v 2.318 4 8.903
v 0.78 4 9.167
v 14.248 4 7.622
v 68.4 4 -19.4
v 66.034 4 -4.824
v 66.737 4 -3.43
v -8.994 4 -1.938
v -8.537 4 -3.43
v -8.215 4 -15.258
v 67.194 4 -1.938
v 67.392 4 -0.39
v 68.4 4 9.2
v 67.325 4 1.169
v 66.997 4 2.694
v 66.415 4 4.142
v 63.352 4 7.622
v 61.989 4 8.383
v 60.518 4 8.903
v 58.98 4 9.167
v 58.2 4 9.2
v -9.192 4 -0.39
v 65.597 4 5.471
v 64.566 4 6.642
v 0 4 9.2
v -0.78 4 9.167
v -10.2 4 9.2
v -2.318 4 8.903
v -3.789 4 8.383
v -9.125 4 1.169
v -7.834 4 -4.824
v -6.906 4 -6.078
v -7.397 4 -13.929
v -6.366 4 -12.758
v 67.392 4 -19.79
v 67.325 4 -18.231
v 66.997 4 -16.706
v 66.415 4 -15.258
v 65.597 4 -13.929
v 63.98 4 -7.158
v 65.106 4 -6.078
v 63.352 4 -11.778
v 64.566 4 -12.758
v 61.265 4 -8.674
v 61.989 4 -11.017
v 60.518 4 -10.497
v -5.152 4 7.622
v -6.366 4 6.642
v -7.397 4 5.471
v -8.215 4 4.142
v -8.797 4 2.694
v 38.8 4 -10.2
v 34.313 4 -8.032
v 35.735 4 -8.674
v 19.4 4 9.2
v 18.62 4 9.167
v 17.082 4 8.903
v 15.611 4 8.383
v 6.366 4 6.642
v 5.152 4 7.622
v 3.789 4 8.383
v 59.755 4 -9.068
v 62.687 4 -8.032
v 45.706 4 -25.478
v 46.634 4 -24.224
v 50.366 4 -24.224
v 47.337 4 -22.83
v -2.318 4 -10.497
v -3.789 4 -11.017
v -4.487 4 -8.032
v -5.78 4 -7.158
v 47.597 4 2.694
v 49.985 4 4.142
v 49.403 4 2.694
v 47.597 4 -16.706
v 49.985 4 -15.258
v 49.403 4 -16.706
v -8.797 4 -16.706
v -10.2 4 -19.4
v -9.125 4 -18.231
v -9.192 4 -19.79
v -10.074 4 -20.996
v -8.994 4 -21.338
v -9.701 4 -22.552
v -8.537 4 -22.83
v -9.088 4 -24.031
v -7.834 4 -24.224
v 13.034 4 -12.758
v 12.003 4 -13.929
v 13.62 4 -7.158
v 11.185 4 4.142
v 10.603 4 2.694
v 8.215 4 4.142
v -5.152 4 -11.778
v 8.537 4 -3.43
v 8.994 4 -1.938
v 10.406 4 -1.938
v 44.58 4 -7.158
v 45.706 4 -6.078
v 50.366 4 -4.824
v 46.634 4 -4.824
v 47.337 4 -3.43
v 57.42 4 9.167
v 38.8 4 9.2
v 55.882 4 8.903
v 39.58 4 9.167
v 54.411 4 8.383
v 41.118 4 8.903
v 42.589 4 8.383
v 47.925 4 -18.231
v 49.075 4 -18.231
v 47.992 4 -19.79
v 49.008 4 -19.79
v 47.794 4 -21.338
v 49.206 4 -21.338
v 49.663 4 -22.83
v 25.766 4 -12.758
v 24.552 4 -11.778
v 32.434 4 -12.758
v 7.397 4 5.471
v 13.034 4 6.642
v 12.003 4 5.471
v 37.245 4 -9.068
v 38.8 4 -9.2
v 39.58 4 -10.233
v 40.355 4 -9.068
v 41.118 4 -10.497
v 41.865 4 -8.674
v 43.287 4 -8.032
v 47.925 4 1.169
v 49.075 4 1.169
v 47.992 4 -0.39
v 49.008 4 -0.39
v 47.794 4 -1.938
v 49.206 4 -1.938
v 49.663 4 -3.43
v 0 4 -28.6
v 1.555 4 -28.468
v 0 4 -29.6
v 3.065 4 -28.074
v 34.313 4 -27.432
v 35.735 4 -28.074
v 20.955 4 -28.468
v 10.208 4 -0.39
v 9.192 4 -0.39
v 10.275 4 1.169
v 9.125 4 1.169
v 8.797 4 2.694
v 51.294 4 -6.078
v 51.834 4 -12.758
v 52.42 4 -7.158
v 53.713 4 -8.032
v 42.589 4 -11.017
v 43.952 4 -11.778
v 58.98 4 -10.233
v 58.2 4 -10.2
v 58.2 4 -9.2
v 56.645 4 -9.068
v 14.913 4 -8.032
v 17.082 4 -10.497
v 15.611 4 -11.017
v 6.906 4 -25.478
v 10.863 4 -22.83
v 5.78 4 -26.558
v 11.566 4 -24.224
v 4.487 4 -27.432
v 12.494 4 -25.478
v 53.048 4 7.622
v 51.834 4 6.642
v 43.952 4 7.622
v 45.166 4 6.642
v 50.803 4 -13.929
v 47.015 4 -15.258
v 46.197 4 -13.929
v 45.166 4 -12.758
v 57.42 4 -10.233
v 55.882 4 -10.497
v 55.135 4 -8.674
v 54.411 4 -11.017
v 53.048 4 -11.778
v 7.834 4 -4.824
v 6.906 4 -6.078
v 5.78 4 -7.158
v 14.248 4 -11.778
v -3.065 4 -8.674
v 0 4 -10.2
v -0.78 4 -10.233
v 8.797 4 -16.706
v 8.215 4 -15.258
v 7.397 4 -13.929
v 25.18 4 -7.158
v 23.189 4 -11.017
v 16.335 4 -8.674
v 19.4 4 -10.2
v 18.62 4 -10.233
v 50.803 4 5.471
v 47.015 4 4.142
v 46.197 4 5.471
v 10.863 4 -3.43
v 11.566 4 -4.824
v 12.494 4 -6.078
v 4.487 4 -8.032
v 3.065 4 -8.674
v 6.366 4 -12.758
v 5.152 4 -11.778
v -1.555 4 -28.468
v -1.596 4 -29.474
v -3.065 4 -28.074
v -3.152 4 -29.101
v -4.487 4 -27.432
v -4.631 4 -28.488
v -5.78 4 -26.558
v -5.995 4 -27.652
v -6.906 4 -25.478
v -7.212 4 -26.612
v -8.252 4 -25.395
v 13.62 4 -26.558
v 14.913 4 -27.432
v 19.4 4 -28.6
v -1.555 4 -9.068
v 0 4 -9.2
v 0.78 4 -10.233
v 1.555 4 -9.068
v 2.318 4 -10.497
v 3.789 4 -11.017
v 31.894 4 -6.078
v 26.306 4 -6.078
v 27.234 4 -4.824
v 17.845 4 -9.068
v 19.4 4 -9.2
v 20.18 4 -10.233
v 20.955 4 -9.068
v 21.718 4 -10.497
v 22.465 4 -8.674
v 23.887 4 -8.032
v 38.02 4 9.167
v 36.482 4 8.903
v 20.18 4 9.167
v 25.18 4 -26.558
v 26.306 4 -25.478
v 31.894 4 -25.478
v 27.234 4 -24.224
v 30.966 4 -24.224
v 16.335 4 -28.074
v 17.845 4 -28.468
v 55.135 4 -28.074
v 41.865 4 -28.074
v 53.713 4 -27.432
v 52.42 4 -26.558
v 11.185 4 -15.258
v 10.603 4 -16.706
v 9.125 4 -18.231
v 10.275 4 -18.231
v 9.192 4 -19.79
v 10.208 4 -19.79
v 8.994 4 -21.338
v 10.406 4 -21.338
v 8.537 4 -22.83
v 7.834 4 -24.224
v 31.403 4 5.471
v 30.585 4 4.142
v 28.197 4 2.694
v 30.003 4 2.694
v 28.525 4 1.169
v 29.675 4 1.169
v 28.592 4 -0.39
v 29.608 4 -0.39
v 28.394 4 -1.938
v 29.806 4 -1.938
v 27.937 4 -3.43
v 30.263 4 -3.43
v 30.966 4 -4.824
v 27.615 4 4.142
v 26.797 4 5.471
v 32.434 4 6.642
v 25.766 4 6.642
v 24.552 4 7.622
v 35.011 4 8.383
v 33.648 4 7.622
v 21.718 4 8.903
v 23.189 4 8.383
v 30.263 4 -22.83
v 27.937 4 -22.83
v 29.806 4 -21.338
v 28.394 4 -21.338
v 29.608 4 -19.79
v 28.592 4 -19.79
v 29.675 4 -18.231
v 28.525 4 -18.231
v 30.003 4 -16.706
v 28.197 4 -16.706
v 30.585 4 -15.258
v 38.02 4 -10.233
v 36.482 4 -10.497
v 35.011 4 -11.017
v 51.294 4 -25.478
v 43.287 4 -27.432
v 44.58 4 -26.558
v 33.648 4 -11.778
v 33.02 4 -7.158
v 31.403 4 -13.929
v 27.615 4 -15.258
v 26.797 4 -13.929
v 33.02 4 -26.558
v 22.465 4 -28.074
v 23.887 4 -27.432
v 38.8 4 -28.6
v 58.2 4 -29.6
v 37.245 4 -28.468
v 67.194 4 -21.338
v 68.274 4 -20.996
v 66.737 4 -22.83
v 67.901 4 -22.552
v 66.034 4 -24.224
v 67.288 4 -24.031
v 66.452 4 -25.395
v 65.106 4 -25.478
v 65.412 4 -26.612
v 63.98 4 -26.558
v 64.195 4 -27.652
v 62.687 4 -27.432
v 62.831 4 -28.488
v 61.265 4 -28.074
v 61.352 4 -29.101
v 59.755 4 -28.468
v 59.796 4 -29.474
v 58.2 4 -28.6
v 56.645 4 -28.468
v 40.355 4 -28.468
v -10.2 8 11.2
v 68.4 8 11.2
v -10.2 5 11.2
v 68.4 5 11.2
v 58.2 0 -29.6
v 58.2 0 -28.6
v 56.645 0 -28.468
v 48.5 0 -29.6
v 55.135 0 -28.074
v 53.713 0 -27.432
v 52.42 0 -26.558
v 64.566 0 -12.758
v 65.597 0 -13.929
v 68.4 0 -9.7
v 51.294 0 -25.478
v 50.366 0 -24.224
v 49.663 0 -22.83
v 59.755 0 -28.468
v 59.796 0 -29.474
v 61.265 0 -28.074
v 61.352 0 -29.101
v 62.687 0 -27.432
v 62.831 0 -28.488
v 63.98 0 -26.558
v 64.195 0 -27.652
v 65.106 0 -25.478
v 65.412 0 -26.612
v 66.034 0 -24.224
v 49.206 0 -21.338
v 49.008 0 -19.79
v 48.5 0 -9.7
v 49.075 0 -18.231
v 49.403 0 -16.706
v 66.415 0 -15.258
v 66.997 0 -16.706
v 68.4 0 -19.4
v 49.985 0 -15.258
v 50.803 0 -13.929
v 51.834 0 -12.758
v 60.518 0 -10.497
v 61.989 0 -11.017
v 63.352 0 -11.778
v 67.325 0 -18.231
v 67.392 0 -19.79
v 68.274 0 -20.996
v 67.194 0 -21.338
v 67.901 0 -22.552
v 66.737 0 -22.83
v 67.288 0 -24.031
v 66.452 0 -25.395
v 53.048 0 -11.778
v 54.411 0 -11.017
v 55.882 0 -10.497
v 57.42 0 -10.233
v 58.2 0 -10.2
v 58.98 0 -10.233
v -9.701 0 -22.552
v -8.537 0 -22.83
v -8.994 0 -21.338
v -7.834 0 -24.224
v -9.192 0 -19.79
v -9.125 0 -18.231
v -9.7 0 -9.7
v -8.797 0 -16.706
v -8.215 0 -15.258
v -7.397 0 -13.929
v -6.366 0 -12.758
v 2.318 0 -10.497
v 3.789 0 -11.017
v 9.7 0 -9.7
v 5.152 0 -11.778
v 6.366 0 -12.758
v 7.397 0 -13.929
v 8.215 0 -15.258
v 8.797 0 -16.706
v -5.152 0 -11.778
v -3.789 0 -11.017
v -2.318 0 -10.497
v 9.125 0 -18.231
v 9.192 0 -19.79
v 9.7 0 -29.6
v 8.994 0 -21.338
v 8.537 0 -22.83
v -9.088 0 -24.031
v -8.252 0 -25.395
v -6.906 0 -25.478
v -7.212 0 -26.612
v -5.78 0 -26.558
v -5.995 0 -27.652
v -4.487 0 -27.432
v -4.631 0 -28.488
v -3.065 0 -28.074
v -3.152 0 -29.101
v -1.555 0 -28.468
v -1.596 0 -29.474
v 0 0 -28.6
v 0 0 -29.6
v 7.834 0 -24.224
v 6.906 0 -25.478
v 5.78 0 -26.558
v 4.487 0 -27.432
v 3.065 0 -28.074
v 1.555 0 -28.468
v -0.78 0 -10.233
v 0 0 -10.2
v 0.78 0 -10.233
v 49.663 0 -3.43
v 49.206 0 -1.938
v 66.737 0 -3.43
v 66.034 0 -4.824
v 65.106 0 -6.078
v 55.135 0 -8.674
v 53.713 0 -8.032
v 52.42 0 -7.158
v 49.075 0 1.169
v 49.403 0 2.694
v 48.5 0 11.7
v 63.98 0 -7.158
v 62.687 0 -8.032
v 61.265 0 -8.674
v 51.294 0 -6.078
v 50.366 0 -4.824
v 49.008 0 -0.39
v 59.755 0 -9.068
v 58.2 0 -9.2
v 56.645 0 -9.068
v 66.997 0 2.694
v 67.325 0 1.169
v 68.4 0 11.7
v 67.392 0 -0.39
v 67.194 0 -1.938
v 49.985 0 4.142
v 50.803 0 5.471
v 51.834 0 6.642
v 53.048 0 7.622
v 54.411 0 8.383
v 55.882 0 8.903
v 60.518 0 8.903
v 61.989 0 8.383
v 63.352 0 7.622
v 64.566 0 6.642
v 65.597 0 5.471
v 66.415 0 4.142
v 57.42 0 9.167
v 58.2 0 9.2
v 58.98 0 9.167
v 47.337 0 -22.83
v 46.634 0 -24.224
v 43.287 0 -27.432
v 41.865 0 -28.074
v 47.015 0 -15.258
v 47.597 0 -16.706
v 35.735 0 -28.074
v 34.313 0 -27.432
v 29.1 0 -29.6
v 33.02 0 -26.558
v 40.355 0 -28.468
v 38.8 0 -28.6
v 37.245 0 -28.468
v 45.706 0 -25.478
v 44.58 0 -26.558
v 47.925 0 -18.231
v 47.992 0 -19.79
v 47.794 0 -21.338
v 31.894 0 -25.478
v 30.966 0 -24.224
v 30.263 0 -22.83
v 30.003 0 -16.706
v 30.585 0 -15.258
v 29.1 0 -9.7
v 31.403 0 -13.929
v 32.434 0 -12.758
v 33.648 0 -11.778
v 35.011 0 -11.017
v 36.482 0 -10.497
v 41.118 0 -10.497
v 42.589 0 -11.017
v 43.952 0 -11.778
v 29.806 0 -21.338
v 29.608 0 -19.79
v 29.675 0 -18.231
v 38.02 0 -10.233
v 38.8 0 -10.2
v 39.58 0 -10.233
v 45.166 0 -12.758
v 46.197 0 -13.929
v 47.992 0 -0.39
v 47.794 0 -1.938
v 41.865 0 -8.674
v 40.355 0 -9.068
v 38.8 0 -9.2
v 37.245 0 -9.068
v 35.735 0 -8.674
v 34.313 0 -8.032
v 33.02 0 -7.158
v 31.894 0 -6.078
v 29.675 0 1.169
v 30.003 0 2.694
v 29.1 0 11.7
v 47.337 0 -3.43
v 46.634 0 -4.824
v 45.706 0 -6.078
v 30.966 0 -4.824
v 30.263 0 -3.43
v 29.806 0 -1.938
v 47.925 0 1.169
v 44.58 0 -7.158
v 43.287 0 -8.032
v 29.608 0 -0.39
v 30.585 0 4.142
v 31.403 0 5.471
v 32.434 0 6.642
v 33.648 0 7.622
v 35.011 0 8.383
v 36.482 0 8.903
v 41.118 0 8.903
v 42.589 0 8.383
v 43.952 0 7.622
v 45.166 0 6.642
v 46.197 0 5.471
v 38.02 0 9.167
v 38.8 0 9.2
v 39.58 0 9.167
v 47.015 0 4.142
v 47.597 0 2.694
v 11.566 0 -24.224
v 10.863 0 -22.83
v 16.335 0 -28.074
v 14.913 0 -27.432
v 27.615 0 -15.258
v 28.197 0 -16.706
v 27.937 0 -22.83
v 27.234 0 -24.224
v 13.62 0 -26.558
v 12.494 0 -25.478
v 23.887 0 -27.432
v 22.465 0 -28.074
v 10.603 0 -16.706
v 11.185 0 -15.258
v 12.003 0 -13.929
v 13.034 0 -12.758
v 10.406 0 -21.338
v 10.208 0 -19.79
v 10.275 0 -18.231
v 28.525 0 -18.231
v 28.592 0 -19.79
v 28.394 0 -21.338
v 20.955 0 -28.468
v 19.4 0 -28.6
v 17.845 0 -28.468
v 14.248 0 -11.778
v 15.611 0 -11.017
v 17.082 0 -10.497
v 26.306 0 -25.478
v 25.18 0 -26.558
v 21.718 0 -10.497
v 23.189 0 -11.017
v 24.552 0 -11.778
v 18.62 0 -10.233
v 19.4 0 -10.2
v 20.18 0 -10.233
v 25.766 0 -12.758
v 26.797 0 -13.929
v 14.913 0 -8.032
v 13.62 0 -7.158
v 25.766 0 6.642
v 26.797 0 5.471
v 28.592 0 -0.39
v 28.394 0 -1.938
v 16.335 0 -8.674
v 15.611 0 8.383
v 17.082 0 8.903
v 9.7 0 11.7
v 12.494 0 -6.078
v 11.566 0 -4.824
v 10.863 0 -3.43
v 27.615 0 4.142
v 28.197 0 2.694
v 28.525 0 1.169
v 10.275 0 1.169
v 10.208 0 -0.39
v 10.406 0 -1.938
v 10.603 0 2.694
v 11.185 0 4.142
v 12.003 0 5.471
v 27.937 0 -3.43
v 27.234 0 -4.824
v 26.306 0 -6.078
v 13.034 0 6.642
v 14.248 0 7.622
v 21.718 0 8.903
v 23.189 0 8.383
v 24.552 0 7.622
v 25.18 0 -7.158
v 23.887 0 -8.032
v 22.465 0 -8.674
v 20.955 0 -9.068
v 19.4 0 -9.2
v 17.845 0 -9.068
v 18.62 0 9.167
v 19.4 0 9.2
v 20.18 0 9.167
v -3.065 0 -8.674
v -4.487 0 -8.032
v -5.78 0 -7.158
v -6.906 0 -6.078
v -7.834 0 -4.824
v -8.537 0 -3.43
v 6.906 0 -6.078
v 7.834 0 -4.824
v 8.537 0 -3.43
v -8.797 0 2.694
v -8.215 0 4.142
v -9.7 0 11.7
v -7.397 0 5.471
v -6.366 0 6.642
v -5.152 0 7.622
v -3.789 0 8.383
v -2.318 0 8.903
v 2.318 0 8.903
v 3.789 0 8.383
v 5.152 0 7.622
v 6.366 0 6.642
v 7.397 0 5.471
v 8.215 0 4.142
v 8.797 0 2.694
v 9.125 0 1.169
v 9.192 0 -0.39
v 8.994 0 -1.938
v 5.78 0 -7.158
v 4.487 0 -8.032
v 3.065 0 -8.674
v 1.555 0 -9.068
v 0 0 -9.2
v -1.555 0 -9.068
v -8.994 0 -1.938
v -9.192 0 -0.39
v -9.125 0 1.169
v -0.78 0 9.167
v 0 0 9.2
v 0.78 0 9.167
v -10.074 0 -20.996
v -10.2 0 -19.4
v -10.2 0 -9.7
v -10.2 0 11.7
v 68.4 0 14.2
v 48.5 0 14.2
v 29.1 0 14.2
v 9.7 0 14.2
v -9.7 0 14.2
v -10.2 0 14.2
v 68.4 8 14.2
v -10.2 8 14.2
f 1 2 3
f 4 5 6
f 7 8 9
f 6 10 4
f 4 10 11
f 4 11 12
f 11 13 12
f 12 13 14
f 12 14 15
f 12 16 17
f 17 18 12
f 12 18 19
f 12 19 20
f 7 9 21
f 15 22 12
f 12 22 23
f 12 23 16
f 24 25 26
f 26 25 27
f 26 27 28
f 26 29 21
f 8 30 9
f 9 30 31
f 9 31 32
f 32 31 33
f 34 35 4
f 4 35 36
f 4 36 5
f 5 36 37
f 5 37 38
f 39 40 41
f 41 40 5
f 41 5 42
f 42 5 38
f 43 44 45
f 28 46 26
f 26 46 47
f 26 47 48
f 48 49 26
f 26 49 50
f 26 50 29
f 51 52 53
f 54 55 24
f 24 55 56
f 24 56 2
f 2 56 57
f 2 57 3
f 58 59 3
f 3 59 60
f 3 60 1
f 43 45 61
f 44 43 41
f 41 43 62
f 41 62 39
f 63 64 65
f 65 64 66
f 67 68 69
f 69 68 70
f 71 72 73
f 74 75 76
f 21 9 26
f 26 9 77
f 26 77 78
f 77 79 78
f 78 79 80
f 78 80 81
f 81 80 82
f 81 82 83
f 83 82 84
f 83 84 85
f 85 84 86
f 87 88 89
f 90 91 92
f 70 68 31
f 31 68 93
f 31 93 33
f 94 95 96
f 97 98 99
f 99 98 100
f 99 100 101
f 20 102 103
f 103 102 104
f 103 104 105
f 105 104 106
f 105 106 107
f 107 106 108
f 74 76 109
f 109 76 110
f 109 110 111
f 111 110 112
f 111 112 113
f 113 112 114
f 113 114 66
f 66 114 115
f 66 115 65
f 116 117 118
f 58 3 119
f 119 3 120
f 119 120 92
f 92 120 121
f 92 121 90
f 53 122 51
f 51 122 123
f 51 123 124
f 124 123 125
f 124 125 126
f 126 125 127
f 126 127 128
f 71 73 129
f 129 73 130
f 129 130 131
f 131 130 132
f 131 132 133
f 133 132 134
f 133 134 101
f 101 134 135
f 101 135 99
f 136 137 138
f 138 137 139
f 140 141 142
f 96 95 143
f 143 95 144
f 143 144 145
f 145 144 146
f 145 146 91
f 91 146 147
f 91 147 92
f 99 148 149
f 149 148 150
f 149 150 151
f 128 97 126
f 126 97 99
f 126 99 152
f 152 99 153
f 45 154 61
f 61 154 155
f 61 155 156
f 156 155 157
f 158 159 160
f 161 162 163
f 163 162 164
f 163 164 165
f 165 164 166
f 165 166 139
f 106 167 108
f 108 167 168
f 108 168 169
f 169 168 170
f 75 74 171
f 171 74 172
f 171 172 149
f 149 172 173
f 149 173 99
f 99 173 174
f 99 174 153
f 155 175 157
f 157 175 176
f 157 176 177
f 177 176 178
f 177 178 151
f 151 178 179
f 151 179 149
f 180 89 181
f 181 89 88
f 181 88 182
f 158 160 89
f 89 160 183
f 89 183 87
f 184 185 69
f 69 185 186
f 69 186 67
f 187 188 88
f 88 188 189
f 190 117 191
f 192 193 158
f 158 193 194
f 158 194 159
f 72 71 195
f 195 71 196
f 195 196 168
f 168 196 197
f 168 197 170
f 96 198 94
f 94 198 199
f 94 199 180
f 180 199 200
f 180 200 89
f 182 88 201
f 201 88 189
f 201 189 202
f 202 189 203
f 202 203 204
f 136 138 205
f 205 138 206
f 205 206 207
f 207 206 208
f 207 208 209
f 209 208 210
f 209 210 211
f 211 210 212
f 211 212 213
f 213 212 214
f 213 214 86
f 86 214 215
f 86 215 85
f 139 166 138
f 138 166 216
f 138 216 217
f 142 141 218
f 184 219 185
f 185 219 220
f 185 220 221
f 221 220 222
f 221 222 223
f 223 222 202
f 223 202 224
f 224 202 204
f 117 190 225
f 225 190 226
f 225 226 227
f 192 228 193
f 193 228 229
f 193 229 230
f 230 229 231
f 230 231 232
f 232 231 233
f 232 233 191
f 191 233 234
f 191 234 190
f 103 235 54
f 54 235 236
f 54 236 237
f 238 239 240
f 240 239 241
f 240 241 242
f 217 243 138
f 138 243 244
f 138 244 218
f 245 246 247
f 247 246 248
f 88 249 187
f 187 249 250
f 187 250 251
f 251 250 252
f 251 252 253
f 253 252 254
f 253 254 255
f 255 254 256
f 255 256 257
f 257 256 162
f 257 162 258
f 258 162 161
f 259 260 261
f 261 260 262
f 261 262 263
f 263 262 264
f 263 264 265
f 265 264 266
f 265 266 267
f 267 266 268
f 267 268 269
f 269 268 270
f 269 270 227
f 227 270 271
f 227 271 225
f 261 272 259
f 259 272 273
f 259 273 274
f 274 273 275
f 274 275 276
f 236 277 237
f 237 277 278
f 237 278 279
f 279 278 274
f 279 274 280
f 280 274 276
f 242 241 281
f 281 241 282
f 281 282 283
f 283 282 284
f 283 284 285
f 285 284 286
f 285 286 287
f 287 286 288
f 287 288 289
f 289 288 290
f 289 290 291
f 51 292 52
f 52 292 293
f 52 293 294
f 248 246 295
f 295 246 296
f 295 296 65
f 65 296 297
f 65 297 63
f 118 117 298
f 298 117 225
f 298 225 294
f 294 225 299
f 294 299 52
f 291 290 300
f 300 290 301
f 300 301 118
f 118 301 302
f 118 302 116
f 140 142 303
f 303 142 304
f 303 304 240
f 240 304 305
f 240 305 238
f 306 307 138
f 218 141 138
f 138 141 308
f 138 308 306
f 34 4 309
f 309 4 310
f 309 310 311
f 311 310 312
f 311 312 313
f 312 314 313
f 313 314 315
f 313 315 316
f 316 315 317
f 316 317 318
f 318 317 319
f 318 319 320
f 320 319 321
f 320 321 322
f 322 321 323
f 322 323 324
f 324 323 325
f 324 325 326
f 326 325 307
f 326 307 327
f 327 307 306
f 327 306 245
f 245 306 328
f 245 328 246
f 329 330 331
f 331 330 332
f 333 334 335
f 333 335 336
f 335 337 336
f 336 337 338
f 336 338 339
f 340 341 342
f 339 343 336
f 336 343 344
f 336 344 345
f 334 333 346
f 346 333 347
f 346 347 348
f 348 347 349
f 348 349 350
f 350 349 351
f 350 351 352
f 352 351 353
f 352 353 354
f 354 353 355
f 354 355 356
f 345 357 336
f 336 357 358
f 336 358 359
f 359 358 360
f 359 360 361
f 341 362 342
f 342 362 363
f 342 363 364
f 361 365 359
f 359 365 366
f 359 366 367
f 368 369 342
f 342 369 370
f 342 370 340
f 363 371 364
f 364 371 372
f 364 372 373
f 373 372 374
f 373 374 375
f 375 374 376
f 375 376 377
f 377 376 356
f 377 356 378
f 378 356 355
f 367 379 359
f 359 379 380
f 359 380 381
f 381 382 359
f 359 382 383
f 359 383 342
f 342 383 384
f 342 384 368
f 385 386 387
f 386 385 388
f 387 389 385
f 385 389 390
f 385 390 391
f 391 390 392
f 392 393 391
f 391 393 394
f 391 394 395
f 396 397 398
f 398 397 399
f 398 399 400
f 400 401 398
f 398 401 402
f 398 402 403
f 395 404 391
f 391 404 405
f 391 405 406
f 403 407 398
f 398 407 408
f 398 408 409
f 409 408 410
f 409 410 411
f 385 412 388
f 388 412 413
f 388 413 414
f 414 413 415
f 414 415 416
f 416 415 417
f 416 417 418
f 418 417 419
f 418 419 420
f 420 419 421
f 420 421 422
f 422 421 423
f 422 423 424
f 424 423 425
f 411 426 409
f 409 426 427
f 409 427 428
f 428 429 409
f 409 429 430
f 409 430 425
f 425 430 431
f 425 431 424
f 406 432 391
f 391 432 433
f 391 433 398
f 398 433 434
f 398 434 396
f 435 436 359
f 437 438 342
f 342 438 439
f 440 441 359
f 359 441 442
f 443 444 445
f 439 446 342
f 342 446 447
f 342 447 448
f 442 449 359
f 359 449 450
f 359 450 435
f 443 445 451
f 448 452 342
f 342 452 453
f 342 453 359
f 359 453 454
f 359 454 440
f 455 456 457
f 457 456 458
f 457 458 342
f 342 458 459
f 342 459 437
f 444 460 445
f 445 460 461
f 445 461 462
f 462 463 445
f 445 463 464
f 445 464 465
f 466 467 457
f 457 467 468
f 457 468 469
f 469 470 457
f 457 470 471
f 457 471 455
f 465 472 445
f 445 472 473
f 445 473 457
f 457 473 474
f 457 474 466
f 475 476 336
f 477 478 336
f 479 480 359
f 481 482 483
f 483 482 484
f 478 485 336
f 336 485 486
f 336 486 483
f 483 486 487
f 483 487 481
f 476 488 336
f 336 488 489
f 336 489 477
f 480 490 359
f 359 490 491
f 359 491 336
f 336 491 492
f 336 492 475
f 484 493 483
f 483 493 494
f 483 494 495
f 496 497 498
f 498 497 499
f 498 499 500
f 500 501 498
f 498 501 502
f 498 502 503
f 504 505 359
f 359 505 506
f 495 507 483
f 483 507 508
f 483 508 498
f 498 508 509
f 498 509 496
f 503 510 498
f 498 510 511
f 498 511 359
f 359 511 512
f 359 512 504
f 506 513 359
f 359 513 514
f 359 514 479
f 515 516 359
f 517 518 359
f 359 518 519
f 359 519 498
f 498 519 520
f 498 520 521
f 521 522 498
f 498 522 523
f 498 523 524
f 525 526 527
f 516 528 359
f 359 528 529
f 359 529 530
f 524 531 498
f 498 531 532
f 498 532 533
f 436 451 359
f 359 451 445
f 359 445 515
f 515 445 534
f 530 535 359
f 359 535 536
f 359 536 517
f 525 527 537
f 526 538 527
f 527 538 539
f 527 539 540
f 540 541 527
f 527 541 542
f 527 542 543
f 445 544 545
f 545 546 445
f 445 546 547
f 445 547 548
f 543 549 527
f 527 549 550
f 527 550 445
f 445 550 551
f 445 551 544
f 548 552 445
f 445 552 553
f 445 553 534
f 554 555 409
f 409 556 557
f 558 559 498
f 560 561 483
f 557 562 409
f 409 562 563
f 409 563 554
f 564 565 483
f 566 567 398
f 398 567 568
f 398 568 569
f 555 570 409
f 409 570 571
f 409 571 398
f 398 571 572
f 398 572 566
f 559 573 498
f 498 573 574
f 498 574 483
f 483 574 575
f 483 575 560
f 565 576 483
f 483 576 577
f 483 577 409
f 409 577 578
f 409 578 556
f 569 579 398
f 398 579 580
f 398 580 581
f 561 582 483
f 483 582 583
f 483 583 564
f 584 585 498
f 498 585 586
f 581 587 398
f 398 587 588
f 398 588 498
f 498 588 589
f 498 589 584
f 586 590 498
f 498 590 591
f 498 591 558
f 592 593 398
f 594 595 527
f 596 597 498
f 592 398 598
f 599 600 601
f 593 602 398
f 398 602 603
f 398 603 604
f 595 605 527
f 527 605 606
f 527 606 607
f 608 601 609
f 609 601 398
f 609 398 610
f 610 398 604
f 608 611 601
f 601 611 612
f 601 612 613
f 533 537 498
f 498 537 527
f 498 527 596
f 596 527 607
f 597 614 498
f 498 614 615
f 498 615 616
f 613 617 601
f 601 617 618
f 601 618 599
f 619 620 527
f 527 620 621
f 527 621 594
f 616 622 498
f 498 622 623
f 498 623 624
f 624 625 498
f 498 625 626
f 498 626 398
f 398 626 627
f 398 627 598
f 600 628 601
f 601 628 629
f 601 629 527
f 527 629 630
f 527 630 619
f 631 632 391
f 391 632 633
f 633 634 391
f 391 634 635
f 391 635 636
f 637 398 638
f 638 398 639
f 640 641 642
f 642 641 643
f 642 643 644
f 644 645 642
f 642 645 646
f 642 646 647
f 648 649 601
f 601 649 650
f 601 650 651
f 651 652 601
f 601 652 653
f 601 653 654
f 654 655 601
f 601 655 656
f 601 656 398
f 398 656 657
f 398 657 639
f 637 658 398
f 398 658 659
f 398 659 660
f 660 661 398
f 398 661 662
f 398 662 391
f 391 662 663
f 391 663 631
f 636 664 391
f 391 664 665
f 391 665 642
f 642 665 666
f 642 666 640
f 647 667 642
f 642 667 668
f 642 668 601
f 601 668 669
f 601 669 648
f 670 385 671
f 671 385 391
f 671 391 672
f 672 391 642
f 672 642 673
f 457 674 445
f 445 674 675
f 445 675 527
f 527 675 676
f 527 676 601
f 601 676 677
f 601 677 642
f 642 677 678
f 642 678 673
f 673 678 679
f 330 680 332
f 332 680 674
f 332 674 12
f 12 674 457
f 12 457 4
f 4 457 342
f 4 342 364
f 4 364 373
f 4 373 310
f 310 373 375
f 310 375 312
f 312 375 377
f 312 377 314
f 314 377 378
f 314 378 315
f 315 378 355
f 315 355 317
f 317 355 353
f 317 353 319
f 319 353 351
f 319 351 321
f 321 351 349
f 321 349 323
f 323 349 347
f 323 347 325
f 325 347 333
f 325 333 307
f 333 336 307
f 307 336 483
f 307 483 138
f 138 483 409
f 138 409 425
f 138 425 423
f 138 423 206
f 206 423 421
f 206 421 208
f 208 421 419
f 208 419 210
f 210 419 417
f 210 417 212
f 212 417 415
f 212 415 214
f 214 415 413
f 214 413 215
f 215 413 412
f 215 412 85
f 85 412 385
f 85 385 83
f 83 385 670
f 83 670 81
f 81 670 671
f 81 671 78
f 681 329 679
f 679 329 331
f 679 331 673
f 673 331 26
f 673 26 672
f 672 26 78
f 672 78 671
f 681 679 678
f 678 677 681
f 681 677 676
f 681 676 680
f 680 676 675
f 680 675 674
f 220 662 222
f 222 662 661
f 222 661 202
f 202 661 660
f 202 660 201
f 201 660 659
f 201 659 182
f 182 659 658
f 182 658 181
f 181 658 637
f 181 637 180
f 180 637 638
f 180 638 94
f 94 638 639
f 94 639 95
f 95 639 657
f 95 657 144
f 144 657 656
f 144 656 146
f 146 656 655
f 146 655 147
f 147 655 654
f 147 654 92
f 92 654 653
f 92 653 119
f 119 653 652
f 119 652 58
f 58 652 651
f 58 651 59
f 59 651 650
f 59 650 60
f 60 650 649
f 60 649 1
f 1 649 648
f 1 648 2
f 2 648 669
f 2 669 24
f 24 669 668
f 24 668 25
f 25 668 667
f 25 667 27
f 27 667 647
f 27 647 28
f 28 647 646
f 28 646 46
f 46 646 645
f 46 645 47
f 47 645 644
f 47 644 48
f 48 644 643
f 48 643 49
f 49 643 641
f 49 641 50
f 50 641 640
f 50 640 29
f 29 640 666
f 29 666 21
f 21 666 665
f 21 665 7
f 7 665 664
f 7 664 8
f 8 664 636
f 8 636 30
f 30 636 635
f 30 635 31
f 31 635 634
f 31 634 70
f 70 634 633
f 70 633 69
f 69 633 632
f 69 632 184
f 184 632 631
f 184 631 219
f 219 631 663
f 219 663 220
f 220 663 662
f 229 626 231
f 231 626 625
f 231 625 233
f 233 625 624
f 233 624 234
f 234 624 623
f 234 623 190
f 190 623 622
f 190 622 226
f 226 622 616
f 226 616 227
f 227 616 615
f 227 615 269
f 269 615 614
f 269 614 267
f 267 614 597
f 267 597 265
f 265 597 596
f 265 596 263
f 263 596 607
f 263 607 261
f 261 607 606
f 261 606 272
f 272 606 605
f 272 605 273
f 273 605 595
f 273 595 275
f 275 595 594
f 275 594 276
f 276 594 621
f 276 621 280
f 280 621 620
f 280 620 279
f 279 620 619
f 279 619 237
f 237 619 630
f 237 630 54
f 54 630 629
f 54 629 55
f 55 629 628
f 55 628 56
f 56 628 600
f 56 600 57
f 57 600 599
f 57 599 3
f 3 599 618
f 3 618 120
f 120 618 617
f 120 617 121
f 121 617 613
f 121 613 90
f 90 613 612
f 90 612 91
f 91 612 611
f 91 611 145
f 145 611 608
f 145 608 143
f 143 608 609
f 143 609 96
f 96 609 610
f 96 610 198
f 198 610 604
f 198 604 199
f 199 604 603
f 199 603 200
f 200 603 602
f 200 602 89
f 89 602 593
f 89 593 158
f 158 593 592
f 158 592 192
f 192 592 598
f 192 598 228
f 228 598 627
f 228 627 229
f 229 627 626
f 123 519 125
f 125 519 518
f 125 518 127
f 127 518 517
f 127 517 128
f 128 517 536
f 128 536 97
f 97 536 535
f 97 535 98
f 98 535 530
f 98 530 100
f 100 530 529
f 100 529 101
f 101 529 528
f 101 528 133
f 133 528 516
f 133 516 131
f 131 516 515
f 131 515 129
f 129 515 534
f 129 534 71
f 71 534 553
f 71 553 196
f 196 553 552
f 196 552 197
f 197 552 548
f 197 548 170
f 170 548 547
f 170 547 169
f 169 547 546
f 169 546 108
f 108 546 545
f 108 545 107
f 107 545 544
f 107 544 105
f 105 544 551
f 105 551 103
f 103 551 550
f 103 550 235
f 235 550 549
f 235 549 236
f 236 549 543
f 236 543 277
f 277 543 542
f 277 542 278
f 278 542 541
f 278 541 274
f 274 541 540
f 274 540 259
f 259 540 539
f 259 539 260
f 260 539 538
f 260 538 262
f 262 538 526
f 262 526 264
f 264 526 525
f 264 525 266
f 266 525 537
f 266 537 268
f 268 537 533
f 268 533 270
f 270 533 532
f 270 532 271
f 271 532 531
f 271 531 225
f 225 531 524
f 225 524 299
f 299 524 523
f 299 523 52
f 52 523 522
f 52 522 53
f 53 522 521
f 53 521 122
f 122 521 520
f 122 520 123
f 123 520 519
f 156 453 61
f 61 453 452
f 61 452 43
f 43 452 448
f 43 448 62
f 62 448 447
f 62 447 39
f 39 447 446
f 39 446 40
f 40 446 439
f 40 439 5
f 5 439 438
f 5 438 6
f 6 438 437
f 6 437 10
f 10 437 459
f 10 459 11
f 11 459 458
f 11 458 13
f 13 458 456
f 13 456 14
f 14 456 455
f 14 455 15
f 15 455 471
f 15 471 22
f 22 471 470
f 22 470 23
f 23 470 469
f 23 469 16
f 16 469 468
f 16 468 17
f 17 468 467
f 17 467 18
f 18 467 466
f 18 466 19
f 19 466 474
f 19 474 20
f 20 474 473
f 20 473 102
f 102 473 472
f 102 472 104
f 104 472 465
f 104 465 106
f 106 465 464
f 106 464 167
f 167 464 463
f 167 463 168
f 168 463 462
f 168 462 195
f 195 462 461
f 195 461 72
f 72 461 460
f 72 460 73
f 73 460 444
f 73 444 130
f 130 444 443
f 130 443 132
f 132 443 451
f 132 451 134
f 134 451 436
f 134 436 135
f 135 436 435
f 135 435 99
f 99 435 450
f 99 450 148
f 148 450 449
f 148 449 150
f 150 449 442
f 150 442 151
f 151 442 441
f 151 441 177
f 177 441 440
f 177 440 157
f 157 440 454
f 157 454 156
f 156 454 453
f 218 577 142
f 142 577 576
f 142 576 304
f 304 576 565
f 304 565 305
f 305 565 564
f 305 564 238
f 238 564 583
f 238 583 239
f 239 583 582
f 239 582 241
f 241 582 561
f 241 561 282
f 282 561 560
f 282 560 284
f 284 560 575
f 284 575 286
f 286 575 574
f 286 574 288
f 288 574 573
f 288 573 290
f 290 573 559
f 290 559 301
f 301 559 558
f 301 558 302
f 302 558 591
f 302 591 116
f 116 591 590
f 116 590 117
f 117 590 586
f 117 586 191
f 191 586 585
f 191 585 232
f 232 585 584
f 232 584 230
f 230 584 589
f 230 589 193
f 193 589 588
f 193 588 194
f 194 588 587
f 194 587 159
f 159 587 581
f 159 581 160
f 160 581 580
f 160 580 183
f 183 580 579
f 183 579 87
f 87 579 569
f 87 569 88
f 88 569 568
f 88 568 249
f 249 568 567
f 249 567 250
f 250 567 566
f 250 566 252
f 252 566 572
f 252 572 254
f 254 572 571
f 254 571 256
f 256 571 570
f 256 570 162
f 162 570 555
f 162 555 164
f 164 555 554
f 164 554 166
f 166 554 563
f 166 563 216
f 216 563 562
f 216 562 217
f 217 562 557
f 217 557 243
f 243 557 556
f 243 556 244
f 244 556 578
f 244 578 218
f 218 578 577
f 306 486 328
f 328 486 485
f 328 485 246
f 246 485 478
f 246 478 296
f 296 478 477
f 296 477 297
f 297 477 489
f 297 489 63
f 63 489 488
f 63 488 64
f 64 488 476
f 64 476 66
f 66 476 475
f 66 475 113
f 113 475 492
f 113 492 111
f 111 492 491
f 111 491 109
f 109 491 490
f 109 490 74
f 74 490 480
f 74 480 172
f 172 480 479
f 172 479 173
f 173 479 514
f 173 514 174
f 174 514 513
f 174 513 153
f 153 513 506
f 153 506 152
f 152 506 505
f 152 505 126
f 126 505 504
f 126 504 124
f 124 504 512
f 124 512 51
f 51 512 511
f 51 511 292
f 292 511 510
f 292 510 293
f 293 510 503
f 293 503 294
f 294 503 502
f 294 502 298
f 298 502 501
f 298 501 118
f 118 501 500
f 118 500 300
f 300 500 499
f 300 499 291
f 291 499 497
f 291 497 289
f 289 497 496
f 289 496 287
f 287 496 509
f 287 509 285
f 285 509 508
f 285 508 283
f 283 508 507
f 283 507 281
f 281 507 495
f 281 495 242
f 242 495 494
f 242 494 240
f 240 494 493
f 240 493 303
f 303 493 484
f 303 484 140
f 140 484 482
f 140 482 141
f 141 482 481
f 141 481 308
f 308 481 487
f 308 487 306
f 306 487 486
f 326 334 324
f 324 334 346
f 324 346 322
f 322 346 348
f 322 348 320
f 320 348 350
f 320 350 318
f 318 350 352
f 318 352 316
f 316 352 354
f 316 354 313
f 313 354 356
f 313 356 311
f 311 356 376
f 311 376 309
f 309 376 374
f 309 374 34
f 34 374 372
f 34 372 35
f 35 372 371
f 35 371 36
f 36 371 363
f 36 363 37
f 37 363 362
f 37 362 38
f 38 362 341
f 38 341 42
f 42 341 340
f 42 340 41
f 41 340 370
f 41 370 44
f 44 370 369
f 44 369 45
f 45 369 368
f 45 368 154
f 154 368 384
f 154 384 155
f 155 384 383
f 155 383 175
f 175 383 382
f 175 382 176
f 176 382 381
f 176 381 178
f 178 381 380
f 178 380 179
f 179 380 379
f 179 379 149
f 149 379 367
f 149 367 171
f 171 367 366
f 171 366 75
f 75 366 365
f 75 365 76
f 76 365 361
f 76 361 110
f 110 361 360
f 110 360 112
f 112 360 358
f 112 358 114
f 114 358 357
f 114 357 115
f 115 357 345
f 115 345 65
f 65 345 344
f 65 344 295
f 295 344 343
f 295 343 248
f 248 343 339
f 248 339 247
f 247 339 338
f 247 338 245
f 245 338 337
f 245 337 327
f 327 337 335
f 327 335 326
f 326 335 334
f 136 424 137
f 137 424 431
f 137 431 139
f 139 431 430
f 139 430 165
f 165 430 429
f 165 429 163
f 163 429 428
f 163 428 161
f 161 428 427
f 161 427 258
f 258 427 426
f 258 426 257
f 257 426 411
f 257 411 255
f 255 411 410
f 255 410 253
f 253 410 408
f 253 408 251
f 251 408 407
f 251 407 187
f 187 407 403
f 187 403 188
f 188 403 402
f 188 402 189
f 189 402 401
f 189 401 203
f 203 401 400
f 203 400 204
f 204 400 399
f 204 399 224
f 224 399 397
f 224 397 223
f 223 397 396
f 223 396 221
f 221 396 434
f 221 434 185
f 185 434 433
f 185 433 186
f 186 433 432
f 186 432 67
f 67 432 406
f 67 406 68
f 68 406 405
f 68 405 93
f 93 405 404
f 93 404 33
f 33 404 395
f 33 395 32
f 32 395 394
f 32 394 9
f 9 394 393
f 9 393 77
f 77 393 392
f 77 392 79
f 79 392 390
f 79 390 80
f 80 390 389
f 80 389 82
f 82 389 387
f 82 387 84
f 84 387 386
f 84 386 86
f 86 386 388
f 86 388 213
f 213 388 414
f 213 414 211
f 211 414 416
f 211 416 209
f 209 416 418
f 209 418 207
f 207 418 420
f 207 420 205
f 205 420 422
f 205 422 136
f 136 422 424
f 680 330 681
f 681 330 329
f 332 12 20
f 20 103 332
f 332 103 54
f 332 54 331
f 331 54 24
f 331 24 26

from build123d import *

# Parameters (mm, degrees)
SKETCH1_R           = 9.2
BOSS_EXTRUDE1_DEPTH = 4
SKETCH2_W           = 78.6
SKETCH2_H           = 3
BOSS_EXTRUDE2_DEPTH = 4
BOSS_EXTRUDE3_DEPTH = 39.3


with BuildPart() as part:
    # Sketch1 → Boss-Extrude1 (new body)
    with BuildSketch(Plane(origin=(0, 0, 0), x_dir=(1, 0, 0), z_dir=(0, 1, 0))):
        with BuildLine():
            Line((-10.2, 0), (-10.2, -14.2))
            Line((-10.2, -14.2), (68.4, -14.2))
            Line((68.4, -14.2), (68.4, 0))
            Line((68.4, 0), (68.4, 19.4))
            ThreePointArc((68.4, 19.4), (65.412489168, 26.612489168), (58.2, 29.6))
            Line((58.2, 29.6), (0, 29.6))
            ThreePointArc((0, 29.6), (-7.212489168, 26.612489168), (-10.2, 19.4))
            Line((-10.2, 19.4), (-10.2, 0))
        make_face()
        with Locations(Location((0, 0, 0), (0, 0, 270))):
            Circle(SKETCH1_R, mode=Mode.SUBTRACT)
        with Locations(Location((19.4, 0, 0), (0, 0, 270))):
            Circle(SKETCH1_R, mode=Mode.SUBTRACT)
        with Locations(Location((38.8, 0, 0), (0, 0, 270))):
            Circle(SKETCH1_R, mode=Mode.SUBTRACT)
        with Locations(Location((58.2, 0, 0), (0, 0, 270))):
            Circle(SKETCH1_R, mode=Mode.SUBTRACT)
        with Locations(Location((19.4, 19.4, 0), (0, 0, 270))):
            Circle(SKETCH1_R, mode=Mode.SUBTRACT)
        with Locations(Location((38.8, 19.4, 0), (0, 0, 270))):
            Circle(SKETCH1_R, mode=Mode.SUBTRACT)
        with Locations(Location((58.2, 19.4, 0), (0, 0, 270))):
            Circle(SKETCH1_R, mode=Mode.SUBTRACT)
        with Locations(Location((0, 19.4, 0), (0, 0, 270))):
            Circle(SKETCH1_R, mode=Mode.SUBTRACT)
    extrude(amount=BOSS_EXTRUDE1_DEPTH)

    # Sketch2 → Boss-Extrude2 (add)
    with BuildSketch(Plane(origin=(0, 4, 0), x_dir=(1, 0, 0), z_dir=(0, 1, 0))):
        with Locations((29.1, -12.7)):
            Rectangle(SKETCH2_W, SKETCH2_H)
    extrude(amount=BOSS_EXTRUDE2_DEPTH)

    # Sketch3 → Boss-Extrude3 (add, symmetric)
    with BuildSketch(Plane(origin=(29.1, 0, 0), x_dir=(0, 0, -1), z_dir=(1, 0, 0))):
        Polygon((-9.2, 4), (-11.2, 5), (-11.2, 4), align=None)
    extrude(amount=BOSS_EXTRUDE3_DEPTH, both=True)


solid = part.part
